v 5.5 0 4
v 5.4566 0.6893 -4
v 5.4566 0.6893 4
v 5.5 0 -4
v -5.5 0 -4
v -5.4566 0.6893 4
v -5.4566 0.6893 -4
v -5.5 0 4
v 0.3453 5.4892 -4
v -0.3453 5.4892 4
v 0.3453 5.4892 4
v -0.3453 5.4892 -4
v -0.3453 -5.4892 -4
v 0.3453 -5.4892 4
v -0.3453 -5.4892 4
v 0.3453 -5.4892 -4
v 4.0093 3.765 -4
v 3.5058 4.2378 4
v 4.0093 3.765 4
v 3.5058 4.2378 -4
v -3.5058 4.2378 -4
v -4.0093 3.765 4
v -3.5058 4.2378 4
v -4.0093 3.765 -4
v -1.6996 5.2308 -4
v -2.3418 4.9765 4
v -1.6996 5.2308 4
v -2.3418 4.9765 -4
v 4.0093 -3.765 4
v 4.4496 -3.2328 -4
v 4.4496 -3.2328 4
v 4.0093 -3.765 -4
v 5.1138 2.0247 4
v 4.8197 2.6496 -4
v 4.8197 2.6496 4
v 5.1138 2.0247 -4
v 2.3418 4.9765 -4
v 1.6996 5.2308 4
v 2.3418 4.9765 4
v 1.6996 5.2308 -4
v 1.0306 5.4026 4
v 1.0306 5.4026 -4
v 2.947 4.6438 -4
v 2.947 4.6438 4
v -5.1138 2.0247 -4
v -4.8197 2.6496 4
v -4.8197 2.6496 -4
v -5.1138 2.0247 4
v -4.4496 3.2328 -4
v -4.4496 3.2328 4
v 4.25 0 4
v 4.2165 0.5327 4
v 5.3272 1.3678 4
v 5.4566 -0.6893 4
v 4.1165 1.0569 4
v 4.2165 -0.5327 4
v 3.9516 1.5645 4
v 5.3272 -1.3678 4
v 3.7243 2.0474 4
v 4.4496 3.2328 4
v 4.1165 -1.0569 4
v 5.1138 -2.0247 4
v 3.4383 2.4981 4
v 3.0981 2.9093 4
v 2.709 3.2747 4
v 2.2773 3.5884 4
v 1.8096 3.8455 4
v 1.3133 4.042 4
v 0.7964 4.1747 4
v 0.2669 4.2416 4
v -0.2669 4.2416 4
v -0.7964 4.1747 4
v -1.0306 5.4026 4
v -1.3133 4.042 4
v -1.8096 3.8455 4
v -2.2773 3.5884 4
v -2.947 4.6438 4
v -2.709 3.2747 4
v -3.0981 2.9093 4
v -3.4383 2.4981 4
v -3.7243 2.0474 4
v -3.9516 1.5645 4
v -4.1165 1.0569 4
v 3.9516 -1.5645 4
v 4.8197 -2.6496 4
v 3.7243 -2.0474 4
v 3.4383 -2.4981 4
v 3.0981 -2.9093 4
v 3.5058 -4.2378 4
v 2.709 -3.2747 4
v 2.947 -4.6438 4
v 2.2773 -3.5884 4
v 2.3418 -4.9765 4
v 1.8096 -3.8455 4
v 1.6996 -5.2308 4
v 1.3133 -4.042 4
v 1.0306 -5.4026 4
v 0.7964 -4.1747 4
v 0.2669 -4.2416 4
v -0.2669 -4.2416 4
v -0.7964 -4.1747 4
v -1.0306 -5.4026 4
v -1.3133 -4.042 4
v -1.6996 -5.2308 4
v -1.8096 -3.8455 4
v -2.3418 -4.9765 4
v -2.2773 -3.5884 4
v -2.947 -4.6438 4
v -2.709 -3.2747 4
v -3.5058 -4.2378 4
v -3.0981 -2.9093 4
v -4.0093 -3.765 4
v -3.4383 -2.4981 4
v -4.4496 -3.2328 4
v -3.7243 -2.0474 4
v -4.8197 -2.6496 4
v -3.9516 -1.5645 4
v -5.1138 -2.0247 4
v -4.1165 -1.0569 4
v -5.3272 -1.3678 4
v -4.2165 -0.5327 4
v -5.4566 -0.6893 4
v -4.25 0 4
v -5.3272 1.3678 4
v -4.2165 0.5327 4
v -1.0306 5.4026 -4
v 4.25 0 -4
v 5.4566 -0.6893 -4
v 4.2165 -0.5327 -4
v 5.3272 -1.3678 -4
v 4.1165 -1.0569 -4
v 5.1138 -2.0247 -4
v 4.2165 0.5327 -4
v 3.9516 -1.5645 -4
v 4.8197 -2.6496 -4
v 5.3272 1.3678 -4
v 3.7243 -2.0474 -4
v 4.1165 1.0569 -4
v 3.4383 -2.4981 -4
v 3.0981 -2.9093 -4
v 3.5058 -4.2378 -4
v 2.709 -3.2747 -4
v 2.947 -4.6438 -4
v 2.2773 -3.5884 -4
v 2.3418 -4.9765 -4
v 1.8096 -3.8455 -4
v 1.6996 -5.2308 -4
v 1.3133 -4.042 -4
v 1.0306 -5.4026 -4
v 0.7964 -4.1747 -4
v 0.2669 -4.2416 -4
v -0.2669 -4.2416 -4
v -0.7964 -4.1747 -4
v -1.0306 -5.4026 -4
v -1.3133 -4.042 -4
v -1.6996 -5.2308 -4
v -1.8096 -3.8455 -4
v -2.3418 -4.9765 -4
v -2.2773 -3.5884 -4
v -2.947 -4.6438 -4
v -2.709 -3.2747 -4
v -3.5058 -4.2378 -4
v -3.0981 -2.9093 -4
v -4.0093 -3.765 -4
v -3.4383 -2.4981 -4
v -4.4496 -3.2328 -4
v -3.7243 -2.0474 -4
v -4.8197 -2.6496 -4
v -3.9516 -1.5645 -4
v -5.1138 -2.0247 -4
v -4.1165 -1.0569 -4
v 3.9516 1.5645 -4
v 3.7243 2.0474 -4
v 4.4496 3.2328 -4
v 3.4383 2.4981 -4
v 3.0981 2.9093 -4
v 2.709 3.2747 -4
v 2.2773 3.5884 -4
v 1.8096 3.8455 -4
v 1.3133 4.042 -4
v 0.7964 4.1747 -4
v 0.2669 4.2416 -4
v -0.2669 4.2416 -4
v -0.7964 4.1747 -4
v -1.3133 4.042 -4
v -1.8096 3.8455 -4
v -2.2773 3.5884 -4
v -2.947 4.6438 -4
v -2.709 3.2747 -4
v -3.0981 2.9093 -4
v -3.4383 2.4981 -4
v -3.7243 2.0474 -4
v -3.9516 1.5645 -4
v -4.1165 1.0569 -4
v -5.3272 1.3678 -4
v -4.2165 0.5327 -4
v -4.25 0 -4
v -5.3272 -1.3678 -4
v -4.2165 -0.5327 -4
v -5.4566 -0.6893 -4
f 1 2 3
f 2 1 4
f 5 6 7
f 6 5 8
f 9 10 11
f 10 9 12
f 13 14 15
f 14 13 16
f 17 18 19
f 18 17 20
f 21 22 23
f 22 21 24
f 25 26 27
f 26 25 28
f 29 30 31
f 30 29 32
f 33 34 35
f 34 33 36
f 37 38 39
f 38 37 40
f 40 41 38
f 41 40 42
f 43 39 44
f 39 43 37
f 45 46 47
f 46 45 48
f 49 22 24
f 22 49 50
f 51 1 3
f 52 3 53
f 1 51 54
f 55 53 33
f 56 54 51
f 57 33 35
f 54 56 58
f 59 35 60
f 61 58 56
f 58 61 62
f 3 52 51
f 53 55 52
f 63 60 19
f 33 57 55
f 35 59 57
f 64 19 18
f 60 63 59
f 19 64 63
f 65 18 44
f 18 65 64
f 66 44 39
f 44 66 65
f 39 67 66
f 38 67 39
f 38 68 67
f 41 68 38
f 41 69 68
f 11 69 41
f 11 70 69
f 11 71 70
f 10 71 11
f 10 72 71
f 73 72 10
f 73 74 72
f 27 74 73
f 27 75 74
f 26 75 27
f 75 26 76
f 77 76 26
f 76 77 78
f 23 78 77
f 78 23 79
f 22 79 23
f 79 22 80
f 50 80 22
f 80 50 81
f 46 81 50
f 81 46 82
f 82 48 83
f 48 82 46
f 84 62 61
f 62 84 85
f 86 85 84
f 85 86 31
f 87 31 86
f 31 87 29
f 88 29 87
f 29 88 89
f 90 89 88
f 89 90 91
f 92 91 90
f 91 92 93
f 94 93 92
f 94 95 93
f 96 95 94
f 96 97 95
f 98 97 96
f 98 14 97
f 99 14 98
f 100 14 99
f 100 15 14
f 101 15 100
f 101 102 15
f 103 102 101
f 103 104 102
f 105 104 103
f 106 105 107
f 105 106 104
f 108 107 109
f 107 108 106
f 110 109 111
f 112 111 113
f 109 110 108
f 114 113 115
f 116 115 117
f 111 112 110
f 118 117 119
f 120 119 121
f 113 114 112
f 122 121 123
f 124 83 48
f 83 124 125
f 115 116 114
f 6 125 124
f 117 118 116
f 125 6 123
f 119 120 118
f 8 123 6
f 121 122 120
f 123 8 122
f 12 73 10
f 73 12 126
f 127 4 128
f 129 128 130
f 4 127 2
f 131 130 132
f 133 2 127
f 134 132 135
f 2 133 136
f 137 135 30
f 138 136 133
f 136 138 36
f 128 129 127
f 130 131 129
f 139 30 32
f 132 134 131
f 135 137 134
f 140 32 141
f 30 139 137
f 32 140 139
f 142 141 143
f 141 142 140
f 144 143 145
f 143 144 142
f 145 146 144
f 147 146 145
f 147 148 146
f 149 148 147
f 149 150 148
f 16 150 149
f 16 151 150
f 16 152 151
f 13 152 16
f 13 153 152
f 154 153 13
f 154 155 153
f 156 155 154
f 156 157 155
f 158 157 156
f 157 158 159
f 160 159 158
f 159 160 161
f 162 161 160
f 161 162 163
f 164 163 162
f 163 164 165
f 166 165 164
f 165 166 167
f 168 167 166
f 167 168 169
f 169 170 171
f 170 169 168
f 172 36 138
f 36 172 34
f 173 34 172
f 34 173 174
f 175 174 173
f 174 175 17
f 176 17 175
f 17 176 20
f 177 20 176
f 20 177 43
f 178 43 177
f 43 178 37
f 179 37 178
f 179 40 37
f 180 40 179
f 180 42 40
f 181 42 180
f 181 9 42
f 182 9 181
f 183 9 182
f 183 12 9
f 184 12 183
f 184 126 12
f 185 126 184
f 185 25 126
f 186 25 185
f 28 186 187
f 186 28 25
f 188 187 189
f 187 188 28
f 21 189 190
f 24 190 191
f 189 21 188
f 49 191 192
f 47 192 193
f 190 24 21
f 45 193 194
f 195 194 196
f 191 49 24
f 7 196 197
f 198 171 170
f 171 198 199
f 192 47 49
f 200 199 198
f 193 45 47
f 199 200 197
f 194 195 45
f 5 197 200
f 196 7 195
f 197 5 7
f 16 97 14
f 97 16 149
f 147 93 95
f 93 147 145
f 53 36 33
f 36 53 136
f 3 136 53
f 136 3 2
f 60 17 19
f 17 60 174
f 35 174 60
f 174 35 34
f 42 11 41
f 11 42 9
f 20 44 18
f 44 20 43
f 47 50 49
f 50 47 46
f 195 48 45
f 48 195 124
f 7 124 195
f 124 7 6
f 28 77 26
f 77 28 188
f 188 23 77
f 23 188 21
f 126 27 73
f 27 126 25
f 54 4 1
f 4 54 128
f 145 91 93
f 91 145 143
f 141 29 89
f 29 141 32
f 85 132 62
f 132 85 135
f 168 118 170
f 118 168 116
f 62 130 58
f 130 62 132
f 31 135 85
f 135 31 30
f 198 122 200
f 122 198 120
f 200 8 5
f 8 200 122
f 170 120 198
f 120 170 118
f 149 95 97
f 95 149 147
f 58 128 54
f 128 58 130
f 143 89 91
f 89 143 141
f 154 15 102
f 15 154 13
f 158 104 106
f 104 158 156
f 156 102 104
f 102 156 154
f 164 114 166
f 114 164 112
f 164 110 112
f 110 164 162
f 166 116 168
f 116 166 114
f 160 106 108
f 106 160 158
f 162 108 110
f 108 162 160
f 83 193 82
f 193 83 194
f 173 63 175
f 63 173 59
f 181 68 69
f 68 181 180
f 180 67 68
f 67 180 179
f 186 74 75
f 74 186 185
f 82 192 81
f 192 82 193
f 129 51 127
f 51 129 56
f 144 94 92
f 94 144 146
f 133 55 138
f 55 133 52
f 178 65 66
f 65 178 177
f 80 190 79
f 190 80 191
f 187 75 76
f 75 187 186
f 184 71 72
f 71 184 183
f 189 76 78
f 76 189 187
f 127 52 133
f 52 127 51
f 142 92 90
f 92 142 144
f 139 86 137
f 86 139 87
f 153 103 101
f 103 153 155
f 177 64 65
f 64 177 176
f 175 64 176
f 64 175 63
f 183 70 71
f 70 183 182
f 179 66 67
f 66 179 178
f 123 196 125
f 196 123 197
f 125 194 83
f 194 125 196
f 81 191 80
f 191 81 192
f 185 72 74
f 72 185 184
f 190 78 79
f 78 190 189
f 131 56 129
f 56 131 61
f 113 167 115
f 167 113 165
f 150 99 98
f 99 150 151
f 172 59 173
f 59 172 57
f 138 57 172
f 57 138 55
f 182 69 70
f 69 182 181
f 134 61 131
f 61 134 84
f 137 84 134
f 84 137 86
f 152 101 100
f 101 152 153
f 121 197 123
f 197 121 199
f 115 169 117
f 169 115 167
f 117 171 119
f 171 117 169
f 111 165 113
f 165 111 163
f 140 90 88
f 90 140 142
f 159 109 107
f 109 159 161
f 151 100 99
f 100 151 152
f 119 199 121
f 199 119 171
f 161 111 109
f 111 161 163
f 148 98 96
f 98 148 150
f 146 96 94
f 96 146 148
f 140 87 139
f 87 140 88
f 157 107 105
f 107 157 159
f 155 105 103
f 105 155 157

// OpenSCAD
$fn = 50;


difference() {
	union() {
		translate(v = [0, 0, -4.0000000000]) {
			cylinder(h = 8, r = 5.5000000000);
		}
	}
	union() {
		translate(v = [0, 0, -100.0000000000]) {
			cylinder(h = 200, r = 4.2500000000);
		}
	}
}
